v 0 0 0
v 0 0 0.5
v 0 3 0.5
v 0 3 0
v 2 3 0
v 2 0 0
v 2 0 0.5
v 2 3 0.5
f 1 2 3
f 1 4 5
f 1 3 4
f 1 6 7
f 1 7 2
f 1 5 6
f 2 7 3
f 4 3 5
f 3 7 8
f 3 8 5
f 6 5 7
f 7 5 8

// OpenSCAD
/* Warning, this is a very basic generator with a lot of approximation 
input data : [UDFN, Q6X, 2x3x0.5mm, 8, , B, C04-00136B]
generated by com.zoubworld.electronics.cad.model3d.Basic
Date : Sun Feb 15 10:50:48 CET 2026
*/

//body
color("black")
translate([0,0,0])
cube([2.0,3.0,0.5], center=false);
